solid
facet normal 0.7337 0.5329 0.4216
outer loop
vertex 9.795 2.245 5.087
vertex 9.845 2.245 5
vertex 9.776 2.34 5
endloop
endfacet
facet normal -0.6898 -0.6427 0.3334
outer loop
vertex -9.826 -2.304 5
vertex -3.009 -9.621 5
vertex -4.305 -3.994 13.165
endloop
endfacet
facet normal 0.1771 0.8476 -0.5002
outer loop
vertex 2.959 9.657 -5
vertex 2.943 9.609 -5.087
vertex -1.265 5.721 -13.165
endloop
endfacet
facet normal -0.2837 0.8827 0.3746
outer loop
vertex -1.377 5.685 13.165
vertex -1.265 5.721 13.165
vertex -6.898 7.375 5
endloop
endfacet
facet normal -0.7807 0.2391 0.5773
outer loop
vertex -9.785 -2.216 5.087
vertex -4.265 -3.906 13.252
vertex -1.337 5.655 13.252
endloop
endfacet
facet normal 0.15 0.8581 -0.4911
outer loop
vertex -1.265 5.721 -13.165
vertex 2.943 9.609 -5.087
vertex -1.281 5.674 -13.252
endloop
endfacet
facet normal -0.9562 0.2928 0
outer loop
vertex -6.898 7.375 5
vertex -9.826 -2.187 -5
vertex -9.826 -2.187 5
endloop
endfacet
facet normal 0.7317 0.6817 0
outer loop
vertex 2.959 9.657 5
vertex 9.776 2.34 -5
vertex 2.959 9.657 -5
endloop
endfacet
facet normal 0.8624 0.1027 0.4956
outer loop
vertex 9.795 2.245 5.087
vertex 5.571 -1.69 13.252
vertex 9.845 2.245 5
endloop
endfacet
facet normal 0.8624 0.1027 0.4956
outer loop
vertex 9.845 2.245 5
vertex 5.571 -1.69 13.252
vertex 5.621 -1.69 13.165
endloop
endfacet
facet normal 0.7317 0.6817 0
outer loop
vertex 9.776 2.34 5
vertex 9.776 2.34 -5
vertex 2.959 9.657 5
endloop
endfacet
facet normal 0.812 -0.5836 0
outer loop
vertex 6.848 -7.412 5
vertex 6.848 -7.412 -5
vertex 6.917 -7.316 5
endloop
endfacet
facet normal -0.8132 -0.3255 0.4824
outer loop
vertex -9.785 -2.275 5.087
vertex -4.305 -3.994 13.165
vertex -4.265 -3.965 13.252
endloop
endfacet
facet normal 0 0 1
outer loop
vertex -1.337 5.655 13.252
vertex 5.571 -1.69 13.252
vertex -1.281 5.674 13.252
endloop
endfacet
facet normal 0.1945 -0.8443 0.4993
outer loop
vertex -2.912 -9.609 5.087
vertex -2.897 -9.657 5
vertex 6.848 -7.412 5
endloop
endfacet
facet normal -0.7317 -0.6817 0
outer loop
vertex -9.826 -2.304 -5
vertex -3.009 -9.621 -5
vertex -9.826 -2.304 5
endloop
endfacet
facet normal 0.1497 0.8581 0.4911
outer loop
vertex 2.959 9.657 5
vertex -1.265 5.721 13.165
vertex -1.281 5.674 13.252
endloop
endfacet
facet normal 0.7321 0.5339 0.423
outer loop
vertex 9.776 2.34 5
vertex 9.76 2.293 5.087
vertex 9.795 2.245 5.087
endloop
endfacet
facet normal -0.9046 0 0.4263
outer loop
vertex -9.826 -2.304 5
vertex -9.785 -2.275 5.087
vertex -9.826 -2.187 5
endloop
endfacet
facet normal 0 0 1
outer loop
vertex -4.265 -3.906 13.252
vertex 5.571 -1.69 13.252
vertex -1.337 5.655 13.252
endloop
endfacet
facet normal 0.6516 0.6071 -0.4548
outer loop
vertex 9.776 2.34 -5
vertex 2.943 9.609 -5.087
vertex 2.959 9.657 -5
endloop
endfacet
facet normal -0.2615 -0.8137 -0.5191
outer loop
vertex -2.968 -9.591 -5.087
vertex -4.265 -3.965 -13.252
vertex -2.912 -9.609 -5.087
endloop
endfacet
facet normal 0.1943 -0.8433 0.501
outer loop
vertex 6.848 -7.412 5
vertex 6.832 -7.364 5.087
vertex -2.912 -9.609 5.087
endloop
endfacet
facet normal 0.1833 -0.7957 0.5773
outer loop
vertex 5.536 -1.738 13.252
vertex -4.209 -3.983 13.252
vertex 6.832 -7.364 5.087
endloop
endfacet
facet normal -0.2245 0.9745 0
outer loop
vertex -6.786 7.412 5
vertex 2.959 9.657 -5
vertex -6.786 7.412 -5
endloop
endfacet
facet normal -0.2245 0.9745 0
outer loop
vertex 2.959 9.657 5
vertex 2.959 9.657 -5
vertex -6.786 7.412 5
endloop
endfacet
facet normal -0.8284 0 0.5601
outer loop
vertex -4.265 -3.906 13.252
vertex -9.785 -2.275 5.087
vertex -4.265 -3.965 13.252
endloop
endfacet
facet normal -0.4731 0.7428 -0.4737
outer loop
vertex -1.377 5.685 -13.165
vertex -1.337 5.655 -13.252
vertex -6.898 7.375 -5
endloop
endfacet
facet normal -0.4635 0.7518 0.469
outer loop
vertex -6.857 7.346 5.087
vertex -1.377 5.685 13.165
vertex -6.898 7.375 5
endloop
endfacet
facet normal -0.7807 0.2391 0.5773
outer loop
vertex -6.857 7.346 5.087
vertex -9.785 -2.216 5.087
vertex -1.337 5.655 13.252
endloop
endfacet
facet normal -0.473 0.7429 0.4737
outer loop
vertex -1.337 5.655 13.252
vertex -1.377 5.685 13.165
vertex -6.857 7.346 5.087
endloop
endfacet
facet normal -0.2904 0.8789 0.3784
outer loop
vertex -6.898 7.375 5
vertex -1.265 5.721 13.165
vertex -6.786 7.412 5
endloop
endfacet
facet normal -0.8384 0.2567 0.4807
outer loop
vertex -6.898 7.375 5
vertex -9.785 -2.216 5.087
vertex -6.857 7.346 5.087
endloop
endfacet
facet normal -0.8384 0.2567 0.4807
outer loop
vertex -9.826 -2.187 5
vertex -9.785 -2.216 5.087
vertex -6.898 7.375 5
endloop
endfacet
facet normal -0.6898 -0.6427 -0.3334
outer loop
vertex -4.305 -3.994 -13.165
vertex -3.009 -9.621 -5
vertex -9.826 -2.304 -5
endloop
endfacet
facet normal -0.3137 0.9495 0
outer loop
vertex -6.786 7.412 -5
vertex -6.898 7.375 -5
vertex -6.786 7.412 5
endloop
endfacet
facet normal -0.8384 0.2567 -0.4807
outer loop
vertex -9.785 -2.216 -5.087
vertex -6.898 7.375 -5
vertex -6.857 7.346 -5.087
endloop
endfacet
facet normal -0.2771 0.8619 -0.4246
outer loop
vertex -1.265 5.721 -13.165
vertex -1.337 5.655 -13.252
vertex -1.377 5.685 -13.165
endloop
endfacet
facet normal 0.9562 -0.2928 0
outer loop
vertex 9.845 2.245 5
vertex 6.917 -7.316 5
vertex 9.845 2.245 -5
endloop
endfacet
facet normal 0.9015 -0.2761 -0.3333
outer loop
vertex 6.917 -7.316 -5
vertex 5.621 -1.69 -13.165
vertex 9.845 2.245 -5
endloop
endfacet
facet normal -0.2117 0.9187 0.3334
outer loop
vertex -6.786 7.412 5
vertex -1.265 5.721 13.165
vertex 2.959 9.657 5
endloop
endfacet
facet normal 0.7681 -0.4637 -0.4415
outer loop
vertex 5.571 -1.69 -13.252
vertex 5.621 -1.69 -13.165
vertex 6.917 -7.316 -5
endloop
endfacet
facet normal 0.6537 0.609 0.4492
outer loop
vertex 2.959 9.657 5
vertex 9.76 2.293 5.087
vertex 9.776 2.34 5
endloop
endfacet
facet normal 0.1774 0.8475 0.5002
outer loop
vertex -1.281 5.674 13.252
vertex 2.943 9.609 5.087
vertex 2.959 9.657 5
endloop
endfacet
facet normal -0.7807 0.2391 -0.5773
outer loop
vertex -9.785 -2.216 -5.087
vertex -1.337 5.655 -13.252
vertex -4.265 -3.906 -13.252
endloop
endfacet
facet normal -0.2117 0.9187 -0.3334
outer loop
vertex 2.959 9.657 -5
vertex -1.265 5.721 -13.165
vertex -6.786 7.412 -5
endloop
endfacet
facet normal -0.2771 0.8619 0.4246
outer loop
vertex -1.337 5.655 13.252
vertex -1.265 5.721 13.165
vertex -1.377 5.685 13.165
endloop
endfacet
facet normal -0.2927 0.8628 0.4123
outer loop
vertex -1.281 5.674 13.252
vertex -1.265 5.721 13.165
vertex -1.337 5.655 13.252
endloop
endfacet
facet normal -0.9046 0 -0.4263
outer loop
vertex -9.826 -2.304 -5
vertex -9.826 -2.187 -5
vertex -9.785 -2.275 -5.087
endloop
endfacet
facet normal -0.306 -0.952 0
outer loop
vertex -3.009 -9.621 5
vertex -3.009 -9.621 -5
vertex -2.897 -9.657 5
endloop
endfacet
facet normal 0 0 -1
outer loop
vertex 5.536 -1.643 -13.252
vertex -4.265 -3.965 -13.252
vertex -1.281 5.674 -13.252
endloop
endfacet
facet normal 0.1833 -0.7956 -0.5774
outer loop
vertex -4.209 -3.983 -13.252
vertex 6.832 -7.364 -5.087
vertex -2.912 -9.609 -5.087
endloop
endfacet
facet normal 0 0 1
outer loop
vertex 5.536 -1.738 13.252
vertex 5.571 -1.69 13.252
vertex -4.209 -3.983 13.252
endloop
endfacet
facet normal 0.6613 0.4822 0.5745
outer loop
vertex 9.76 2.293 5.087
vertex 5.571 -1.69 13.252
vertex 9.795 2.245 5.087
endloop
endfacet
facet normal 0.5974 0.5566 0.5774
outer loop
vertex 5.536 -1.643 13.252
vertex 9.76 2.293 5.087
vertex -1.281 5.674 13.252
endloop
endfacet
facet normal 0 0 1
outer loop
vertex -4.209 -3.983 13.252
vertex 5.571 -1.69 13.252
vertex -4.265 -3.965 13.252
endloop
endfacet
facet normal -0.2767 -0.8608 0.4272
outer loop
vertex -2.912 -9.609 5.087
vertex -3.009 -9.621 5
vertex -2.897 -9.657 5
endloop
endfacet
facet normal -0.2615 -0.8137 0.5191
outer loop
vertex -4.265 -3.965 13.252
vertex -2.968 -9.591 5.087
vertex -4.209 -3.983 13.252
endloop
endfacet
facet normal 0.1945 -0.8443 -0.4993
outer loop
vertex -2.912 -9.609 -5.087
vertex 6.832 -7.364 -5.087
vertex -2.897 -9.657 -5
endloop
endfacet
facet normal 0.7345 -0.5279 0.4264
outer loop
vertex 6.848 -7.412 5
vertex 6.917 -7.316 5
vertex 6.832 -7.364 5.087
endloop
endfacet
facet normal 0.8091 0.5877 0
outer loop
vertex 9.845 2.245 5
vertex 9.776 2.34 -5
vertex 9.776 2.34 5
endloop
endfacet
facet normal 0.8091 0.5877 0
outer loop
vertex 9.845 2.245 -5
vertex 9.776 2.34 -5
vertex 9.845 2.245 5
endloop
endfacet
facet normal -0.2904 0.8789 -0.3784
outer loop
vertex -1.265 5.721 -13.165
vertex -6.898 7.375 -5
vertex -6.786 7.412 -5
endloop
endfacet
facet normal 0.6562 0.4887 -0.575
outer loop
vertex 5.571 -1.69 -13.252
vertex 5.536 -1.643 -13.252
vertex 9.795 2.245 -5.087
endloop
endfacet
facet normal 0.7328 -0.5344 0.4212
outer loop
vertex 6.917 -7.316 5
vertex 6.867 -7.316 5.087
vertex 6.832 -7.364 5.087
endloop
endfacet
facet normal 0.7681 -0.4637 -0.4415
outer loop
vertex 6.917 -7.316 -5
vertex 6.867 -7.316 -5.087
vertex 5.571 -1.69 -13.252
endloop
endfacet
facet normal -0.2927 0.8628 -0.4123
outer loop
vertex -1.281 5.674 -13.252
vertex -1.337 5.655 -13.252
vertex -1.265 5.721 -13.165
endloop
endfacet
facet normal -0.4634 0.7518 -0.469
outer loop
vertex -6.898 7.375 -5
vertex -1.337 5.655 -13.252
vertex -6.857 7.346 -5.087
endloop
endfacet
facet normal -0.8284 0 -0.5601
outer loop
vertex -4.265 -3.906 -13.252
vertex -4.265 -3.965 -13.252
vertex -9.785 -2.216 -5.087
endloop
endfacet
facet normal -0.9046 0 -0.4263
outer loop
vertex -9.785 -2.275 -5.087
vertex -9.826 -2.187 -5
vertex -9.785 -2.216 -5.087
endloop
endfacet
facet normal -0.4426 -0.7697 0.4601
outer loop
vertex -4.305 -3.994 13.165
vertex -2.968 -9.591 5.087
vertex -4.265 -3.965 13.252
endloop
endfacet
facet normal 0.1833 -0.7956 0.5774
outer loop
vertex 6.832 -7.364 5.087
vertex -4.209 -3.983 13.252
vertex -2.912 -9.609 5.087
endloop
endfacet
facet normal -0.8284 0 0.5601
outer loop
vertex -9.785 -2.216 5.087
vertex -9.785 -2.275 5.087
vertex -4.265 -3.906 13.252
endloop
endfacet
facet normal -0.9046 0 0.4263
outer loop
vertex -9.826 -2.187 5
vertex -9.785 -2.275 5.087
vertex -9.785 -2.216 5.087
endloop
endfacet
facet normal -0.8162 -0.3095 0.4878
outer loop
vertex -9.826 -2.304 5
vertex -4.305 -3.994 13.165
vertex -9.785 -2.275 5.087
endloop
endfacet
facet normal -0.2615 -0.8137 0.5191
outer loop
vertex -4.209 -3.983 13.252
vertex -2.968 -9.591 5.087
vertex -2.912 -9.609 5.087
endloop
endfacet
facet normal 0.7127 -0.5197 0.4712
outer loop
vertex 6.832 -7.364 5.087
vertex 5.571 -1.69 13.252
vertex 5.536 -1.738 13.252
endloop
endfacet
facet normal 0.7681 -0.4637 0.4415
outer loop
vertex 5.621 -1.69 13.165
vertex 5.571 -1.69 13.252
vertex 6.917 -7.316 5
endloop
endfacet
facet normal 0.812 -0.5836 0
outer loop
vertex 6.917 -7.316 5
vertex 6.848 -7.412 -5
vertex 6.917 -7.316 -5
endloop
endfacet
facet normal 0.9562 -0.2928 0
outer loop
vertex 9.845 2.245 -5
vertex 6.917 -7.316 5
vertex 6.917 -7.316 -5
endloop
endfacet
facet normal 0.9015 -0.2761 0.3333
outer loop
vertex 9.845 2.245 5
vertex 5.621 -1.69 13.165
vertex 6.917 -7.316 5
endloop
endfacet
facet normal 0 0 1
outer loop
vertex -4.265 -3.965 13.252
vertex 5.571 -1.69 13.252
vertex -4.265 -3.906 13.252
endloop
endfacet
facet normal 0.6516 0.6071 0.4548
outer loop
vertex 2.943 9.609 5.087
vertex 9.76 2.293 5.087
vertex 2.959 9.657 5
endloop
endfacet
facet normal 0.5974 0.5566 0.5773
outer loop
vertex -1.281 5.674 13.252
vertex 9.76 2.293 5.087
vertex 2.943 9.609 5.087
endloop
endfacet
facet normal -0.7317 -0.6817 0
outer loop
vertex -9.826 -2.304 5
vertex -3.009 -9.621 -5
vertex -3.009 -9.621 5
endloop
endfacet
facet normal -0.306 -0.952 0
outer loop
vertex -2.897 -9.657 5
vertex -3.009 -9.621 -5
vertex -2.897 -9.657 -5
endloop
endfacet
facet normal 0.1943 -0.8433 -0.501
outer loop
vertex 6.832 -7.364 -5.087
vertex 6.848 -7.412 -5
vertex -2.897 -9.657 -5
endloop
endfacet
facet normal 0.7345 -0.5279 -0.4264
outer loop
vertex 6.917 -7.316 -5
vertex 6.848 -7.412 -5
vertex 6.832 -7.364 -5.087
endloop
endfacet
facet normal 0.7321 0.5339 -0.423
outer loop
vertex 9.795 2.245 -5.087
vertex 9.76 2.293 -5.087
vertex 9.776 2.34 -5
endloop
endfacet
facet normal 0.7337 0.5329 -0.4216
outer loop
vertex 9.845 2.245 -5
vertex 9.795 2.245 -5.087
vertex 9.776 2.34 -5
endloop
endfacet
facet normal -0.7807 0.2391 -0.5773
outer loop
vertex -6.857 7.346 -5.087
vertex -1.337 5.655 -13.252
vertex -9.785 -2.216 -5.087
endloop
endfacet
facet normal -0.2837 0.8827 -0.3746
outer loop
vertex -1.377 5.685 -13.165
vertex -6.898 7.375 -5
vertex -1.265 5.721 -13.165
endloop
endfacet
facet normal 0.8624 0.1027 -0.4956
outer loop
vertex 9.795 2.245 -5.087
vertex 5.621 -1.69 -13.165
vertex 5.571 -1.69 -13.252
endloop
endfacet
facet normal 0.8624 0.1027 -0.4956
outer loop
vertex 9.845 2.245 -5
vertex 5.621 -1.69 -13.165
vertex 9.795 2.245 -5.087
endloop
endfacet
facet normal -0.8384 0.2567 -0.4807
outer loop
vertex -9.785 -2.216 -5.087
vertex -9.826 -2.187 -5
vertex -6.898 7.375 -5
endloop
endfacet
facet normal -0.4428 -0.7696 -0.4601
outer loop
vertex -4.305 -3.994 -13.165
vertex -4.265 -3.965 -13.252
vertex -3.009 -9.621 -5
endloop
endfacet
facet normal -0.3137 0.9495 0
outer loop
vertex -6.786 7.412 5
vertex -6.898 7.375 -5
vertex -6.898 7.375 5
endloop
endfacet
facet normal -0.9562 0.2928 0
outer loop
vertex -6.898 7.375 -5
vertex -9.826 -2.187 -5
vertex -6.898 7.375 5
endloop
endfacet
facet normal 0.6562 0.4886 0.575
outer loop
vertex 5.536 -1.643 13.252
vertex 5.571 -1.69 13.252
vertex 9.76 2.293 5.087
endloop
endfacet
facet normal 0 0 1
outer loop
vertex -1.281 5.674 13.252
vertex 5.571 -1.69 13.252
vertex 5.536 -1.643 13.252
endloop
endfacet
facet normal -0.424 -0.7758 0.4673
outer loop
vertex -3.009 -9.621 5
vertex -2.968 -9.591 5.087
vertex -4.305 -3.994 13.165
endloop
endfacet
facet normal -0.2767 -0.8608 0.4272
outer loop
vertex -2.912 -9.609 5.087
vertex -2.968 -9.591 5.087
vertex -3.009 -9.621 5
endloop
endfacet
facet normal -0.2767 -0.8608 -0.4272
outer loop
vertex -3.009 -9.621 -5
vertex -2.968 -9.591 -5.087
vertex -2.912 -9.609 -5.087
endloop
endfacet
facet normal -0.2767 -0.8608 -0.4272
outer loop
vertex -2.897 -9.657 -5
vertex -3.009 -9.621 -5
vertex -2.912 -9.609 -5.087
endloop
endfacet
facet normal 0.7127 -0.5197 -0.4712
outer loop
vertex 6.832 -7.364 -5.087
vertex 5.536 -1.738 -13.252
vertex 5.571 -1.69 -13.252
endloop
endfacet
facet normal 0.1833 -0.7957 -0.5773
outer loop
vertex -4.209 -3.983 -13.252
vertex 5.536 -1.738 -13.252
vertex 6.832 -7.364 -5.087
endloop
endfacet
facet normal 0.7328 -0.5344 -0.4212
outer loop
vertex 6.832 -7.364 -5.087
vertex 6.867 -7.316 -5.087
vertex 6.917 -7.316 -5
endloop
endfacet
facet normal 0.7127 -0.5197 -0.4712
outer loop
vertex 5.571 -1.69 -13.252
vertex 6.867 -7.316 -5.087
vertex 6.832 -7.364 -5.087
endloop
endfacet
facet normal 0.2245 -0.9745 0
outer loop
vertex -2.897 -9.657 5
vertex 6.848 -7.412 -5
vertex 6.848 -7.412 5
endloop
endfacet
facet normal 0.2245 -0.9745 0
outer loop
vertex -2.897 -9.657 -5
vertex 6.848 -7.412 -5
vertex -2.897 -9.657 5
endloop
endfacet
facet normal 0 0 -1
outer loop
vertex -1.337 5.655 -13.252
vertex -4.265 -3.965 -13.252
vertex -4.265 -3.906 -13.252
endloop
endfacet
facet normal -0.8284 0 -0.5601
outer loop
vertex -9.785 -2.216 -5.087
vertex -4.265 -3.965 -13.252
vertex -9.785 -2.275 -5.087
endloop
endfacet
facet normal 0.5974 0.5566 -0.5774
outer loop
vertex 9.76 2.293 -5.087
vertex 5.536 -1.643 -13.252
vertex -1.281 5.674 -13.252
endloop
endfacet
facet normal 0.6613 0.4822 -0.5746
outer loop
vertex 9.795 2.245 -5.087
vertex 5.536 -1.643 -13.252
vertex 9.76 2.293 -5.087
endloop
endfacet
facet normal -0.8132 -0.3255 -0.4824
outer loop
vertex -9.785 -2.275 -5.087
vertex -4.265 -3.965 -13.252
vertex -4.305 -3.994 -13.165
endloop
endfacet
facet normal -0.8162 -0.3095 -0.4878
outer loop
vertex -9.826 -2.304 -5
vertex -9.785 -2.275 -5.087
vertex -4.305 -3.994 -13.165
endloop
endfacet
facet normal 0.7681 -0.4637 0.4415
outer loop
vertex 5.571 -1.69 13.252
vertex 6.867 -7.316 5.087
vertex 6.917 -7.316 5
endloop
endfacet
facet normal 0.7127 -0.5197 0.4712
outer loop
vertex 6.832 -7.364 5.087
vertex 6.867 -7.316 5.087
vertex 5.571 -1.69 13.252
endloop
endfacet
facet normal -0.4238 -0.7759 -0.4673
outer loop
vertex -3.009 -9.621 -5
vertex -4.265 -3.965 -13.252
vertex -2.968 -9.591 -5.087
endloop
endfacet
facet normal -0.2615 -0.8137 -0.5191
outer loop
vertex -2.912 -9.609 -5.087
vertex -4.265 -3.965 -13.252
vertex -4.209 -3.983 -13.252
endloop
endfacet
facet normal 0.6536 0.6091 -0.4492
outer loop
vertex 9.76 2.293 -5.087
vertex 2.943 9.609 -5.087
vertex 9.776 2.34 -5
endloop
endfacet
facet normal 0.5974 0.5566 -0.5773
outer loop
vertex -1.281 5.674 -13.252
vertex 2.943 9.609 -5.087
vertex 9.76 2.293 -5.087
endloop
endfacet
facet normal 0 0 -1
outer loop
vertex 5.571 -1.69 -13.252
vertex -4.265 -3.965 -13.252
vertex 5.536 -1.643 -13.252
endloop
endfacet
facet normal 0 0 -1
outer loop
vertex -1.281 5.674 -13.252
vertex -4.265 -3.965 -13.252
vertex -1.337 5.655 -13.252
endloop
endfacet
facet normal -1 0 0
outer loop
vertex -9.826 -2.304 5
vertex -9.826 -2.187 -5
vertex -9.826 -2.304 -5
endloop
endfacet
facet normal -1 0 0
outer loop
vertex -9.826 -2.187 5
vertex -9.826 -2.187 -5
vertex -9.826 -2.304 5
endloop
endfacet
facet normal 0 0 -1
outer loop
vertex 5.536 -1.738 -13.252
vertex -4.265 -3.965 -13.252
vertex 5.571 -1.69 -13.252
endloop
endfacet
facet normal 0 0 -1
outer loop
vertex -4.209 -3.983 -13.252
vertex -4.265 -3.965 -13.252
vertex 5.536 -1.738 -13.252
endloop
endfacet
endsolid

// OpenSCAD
// Auto-generated OpenSCAD file

    inner_points = 10*[[0.6816849469680293, -0.7316458385567781, -0.49999999999974415], [-0.6816849469680293, 0.7316458385567781, 0.49999999999974415], [0.9744663562470987, 0.22453356217329945, 0.5000000000002717], [-0.9744663562470987, -0.22453356217329945, -0.5000000000002717], [0.29278140927951324, 0.9561794007299667, -0.49999999999998396], [-0.29278140927951324, -0.9561794007299667, 0.49999999999998396], [0.29278140927921736, 0.9561794007300406, 0.5000000000000159], [-0.29278140927921736, -0.9561794007300406, -0.5000000000000159], [-0.6816849469677333, 0.7316458385567042, -0.5000000000002558], [0.6816849469677333, -0.7316458385567042, 0.5000000000002558], [0.9744663562473946, 0.2245335621732255, -0.4999999999997282], [-0.9744663562473946, -0.2245335621732255, 0.4999999999997282], [-0.12963451256244907, 0.5626084130954843, -1.316496580927806], [0.5520504344054322, -0.1690374254612569, -1.31649658092755], [-0.42241592184181437, -0.39357098763451936, -1.3164965809278217], [-0.12963451256322828, 0.5626084130956789, 1.316496580927646], [0.5520504344046528, -0.1690374254610622, 1.316496580927902], [-0.4224159218425935, -0.39357098763432463, 1.3164965809276301]];

    outer_points = 10*[[-0.7011219638770654, 0.0705453444014307, -0.8680157522490306], [0.7011219638770654, -0.0705453444014307, 0.8680157522490306], [0.7058639190712959, -0.07219505369662516, -0.8640277784741948], [-0.7058639190712959, 0.07219505369662516, 0.8640277784741948], [0.458804168329848, 1.0195580679347902, 0.00028501269092109927], [-0.458804168329848, -1.0195580679347902, -0.00028501269092109927], [1.0909253114088568, 0.2446924239128929, 0.0027536534135308988], [-1.0909253114088568, -0.2446924239128929, -0.0027536534135308988], [0.06900082079805647, 0.7043202996204667, 0.8655471115264208], [-0.06900082079805647, -0.7043202996204667, -0.8655471115264208], [0.07374277599228718, 0.7026705903252722, -0.8664964191968046], [-0.07374277599228718, -0.7026705903252722, 0.8664964191968046], [-0.4455432795266699, 1.3364455455443083, 0.28618363124246243], [-0.8306046718642308, 1.0195580679347902, -0.5805978006452633], [-1.2204080193960225, 0.7043202996204667, 0.28466429819023636], [1.2188273676646122, -0.7037703965220686, 0.2926835453841721], [0.8337659753270512, -1.0206578741315866, -0.5740978865035536], [0.44396262779525975, -1.33589564244591, 0.29116421233194606]];

    // Convex hull for inner set (I)
    module inner_hull() {
        hull() {
            for (p = inner_points) {
                translate(p) sphere(r=0.1);
            }
        }
    }

    // Convex hull for outer set (O) minus inner hull (O \ I)
    module outer_minus_inner() {
        difference() {
            hull() {
                for (p = outer_points) {
                    translate(p) sphere(r=0.1);
                }
            }
            inner_hull(); // Subtract inner hull
        }
    }

    // Convex hull for outer set (O) minus all translated inner hulls
    module outer_minus_AllTranslationInner() {
        difference() {
            hull() {
                for (p = outer_points) {
                    translate(p) sphere(r=0.1);
                }
            }
            hull() {
                translate([0,0,50]) inner_hull();
                translate([0,0,-50]) inner_hull();
            }; // Subtract translated inner hulls
        }
    }

    // Difference between outer_minus_inner and outer_minus_AllTranslationInner
    module outer_minus_inner_diff() {
        difference() {
            // Outer minus inner
            difference() {
                hull() {
                    for (p = outer_points) {
                        translate(p) sphere(r=0.1);
                    }
                }
                inner_hull();
            }

            // Subtract Outer minus AllTranslationInner
            difference() {
                hull() {
                    for (p = outer_points) {
                        translate(p) sphere(r=0.1);
                    }
                }
                hull() {
                    translate([0,0,50]) inner_hull();
                    translate([0,0,-50]) inner_hull();
                };
            }
        }
    }

    // Rendering all with colors applied
    color([1, 0, 0, 0.5]) inner_hull(); // Transparent red
    
